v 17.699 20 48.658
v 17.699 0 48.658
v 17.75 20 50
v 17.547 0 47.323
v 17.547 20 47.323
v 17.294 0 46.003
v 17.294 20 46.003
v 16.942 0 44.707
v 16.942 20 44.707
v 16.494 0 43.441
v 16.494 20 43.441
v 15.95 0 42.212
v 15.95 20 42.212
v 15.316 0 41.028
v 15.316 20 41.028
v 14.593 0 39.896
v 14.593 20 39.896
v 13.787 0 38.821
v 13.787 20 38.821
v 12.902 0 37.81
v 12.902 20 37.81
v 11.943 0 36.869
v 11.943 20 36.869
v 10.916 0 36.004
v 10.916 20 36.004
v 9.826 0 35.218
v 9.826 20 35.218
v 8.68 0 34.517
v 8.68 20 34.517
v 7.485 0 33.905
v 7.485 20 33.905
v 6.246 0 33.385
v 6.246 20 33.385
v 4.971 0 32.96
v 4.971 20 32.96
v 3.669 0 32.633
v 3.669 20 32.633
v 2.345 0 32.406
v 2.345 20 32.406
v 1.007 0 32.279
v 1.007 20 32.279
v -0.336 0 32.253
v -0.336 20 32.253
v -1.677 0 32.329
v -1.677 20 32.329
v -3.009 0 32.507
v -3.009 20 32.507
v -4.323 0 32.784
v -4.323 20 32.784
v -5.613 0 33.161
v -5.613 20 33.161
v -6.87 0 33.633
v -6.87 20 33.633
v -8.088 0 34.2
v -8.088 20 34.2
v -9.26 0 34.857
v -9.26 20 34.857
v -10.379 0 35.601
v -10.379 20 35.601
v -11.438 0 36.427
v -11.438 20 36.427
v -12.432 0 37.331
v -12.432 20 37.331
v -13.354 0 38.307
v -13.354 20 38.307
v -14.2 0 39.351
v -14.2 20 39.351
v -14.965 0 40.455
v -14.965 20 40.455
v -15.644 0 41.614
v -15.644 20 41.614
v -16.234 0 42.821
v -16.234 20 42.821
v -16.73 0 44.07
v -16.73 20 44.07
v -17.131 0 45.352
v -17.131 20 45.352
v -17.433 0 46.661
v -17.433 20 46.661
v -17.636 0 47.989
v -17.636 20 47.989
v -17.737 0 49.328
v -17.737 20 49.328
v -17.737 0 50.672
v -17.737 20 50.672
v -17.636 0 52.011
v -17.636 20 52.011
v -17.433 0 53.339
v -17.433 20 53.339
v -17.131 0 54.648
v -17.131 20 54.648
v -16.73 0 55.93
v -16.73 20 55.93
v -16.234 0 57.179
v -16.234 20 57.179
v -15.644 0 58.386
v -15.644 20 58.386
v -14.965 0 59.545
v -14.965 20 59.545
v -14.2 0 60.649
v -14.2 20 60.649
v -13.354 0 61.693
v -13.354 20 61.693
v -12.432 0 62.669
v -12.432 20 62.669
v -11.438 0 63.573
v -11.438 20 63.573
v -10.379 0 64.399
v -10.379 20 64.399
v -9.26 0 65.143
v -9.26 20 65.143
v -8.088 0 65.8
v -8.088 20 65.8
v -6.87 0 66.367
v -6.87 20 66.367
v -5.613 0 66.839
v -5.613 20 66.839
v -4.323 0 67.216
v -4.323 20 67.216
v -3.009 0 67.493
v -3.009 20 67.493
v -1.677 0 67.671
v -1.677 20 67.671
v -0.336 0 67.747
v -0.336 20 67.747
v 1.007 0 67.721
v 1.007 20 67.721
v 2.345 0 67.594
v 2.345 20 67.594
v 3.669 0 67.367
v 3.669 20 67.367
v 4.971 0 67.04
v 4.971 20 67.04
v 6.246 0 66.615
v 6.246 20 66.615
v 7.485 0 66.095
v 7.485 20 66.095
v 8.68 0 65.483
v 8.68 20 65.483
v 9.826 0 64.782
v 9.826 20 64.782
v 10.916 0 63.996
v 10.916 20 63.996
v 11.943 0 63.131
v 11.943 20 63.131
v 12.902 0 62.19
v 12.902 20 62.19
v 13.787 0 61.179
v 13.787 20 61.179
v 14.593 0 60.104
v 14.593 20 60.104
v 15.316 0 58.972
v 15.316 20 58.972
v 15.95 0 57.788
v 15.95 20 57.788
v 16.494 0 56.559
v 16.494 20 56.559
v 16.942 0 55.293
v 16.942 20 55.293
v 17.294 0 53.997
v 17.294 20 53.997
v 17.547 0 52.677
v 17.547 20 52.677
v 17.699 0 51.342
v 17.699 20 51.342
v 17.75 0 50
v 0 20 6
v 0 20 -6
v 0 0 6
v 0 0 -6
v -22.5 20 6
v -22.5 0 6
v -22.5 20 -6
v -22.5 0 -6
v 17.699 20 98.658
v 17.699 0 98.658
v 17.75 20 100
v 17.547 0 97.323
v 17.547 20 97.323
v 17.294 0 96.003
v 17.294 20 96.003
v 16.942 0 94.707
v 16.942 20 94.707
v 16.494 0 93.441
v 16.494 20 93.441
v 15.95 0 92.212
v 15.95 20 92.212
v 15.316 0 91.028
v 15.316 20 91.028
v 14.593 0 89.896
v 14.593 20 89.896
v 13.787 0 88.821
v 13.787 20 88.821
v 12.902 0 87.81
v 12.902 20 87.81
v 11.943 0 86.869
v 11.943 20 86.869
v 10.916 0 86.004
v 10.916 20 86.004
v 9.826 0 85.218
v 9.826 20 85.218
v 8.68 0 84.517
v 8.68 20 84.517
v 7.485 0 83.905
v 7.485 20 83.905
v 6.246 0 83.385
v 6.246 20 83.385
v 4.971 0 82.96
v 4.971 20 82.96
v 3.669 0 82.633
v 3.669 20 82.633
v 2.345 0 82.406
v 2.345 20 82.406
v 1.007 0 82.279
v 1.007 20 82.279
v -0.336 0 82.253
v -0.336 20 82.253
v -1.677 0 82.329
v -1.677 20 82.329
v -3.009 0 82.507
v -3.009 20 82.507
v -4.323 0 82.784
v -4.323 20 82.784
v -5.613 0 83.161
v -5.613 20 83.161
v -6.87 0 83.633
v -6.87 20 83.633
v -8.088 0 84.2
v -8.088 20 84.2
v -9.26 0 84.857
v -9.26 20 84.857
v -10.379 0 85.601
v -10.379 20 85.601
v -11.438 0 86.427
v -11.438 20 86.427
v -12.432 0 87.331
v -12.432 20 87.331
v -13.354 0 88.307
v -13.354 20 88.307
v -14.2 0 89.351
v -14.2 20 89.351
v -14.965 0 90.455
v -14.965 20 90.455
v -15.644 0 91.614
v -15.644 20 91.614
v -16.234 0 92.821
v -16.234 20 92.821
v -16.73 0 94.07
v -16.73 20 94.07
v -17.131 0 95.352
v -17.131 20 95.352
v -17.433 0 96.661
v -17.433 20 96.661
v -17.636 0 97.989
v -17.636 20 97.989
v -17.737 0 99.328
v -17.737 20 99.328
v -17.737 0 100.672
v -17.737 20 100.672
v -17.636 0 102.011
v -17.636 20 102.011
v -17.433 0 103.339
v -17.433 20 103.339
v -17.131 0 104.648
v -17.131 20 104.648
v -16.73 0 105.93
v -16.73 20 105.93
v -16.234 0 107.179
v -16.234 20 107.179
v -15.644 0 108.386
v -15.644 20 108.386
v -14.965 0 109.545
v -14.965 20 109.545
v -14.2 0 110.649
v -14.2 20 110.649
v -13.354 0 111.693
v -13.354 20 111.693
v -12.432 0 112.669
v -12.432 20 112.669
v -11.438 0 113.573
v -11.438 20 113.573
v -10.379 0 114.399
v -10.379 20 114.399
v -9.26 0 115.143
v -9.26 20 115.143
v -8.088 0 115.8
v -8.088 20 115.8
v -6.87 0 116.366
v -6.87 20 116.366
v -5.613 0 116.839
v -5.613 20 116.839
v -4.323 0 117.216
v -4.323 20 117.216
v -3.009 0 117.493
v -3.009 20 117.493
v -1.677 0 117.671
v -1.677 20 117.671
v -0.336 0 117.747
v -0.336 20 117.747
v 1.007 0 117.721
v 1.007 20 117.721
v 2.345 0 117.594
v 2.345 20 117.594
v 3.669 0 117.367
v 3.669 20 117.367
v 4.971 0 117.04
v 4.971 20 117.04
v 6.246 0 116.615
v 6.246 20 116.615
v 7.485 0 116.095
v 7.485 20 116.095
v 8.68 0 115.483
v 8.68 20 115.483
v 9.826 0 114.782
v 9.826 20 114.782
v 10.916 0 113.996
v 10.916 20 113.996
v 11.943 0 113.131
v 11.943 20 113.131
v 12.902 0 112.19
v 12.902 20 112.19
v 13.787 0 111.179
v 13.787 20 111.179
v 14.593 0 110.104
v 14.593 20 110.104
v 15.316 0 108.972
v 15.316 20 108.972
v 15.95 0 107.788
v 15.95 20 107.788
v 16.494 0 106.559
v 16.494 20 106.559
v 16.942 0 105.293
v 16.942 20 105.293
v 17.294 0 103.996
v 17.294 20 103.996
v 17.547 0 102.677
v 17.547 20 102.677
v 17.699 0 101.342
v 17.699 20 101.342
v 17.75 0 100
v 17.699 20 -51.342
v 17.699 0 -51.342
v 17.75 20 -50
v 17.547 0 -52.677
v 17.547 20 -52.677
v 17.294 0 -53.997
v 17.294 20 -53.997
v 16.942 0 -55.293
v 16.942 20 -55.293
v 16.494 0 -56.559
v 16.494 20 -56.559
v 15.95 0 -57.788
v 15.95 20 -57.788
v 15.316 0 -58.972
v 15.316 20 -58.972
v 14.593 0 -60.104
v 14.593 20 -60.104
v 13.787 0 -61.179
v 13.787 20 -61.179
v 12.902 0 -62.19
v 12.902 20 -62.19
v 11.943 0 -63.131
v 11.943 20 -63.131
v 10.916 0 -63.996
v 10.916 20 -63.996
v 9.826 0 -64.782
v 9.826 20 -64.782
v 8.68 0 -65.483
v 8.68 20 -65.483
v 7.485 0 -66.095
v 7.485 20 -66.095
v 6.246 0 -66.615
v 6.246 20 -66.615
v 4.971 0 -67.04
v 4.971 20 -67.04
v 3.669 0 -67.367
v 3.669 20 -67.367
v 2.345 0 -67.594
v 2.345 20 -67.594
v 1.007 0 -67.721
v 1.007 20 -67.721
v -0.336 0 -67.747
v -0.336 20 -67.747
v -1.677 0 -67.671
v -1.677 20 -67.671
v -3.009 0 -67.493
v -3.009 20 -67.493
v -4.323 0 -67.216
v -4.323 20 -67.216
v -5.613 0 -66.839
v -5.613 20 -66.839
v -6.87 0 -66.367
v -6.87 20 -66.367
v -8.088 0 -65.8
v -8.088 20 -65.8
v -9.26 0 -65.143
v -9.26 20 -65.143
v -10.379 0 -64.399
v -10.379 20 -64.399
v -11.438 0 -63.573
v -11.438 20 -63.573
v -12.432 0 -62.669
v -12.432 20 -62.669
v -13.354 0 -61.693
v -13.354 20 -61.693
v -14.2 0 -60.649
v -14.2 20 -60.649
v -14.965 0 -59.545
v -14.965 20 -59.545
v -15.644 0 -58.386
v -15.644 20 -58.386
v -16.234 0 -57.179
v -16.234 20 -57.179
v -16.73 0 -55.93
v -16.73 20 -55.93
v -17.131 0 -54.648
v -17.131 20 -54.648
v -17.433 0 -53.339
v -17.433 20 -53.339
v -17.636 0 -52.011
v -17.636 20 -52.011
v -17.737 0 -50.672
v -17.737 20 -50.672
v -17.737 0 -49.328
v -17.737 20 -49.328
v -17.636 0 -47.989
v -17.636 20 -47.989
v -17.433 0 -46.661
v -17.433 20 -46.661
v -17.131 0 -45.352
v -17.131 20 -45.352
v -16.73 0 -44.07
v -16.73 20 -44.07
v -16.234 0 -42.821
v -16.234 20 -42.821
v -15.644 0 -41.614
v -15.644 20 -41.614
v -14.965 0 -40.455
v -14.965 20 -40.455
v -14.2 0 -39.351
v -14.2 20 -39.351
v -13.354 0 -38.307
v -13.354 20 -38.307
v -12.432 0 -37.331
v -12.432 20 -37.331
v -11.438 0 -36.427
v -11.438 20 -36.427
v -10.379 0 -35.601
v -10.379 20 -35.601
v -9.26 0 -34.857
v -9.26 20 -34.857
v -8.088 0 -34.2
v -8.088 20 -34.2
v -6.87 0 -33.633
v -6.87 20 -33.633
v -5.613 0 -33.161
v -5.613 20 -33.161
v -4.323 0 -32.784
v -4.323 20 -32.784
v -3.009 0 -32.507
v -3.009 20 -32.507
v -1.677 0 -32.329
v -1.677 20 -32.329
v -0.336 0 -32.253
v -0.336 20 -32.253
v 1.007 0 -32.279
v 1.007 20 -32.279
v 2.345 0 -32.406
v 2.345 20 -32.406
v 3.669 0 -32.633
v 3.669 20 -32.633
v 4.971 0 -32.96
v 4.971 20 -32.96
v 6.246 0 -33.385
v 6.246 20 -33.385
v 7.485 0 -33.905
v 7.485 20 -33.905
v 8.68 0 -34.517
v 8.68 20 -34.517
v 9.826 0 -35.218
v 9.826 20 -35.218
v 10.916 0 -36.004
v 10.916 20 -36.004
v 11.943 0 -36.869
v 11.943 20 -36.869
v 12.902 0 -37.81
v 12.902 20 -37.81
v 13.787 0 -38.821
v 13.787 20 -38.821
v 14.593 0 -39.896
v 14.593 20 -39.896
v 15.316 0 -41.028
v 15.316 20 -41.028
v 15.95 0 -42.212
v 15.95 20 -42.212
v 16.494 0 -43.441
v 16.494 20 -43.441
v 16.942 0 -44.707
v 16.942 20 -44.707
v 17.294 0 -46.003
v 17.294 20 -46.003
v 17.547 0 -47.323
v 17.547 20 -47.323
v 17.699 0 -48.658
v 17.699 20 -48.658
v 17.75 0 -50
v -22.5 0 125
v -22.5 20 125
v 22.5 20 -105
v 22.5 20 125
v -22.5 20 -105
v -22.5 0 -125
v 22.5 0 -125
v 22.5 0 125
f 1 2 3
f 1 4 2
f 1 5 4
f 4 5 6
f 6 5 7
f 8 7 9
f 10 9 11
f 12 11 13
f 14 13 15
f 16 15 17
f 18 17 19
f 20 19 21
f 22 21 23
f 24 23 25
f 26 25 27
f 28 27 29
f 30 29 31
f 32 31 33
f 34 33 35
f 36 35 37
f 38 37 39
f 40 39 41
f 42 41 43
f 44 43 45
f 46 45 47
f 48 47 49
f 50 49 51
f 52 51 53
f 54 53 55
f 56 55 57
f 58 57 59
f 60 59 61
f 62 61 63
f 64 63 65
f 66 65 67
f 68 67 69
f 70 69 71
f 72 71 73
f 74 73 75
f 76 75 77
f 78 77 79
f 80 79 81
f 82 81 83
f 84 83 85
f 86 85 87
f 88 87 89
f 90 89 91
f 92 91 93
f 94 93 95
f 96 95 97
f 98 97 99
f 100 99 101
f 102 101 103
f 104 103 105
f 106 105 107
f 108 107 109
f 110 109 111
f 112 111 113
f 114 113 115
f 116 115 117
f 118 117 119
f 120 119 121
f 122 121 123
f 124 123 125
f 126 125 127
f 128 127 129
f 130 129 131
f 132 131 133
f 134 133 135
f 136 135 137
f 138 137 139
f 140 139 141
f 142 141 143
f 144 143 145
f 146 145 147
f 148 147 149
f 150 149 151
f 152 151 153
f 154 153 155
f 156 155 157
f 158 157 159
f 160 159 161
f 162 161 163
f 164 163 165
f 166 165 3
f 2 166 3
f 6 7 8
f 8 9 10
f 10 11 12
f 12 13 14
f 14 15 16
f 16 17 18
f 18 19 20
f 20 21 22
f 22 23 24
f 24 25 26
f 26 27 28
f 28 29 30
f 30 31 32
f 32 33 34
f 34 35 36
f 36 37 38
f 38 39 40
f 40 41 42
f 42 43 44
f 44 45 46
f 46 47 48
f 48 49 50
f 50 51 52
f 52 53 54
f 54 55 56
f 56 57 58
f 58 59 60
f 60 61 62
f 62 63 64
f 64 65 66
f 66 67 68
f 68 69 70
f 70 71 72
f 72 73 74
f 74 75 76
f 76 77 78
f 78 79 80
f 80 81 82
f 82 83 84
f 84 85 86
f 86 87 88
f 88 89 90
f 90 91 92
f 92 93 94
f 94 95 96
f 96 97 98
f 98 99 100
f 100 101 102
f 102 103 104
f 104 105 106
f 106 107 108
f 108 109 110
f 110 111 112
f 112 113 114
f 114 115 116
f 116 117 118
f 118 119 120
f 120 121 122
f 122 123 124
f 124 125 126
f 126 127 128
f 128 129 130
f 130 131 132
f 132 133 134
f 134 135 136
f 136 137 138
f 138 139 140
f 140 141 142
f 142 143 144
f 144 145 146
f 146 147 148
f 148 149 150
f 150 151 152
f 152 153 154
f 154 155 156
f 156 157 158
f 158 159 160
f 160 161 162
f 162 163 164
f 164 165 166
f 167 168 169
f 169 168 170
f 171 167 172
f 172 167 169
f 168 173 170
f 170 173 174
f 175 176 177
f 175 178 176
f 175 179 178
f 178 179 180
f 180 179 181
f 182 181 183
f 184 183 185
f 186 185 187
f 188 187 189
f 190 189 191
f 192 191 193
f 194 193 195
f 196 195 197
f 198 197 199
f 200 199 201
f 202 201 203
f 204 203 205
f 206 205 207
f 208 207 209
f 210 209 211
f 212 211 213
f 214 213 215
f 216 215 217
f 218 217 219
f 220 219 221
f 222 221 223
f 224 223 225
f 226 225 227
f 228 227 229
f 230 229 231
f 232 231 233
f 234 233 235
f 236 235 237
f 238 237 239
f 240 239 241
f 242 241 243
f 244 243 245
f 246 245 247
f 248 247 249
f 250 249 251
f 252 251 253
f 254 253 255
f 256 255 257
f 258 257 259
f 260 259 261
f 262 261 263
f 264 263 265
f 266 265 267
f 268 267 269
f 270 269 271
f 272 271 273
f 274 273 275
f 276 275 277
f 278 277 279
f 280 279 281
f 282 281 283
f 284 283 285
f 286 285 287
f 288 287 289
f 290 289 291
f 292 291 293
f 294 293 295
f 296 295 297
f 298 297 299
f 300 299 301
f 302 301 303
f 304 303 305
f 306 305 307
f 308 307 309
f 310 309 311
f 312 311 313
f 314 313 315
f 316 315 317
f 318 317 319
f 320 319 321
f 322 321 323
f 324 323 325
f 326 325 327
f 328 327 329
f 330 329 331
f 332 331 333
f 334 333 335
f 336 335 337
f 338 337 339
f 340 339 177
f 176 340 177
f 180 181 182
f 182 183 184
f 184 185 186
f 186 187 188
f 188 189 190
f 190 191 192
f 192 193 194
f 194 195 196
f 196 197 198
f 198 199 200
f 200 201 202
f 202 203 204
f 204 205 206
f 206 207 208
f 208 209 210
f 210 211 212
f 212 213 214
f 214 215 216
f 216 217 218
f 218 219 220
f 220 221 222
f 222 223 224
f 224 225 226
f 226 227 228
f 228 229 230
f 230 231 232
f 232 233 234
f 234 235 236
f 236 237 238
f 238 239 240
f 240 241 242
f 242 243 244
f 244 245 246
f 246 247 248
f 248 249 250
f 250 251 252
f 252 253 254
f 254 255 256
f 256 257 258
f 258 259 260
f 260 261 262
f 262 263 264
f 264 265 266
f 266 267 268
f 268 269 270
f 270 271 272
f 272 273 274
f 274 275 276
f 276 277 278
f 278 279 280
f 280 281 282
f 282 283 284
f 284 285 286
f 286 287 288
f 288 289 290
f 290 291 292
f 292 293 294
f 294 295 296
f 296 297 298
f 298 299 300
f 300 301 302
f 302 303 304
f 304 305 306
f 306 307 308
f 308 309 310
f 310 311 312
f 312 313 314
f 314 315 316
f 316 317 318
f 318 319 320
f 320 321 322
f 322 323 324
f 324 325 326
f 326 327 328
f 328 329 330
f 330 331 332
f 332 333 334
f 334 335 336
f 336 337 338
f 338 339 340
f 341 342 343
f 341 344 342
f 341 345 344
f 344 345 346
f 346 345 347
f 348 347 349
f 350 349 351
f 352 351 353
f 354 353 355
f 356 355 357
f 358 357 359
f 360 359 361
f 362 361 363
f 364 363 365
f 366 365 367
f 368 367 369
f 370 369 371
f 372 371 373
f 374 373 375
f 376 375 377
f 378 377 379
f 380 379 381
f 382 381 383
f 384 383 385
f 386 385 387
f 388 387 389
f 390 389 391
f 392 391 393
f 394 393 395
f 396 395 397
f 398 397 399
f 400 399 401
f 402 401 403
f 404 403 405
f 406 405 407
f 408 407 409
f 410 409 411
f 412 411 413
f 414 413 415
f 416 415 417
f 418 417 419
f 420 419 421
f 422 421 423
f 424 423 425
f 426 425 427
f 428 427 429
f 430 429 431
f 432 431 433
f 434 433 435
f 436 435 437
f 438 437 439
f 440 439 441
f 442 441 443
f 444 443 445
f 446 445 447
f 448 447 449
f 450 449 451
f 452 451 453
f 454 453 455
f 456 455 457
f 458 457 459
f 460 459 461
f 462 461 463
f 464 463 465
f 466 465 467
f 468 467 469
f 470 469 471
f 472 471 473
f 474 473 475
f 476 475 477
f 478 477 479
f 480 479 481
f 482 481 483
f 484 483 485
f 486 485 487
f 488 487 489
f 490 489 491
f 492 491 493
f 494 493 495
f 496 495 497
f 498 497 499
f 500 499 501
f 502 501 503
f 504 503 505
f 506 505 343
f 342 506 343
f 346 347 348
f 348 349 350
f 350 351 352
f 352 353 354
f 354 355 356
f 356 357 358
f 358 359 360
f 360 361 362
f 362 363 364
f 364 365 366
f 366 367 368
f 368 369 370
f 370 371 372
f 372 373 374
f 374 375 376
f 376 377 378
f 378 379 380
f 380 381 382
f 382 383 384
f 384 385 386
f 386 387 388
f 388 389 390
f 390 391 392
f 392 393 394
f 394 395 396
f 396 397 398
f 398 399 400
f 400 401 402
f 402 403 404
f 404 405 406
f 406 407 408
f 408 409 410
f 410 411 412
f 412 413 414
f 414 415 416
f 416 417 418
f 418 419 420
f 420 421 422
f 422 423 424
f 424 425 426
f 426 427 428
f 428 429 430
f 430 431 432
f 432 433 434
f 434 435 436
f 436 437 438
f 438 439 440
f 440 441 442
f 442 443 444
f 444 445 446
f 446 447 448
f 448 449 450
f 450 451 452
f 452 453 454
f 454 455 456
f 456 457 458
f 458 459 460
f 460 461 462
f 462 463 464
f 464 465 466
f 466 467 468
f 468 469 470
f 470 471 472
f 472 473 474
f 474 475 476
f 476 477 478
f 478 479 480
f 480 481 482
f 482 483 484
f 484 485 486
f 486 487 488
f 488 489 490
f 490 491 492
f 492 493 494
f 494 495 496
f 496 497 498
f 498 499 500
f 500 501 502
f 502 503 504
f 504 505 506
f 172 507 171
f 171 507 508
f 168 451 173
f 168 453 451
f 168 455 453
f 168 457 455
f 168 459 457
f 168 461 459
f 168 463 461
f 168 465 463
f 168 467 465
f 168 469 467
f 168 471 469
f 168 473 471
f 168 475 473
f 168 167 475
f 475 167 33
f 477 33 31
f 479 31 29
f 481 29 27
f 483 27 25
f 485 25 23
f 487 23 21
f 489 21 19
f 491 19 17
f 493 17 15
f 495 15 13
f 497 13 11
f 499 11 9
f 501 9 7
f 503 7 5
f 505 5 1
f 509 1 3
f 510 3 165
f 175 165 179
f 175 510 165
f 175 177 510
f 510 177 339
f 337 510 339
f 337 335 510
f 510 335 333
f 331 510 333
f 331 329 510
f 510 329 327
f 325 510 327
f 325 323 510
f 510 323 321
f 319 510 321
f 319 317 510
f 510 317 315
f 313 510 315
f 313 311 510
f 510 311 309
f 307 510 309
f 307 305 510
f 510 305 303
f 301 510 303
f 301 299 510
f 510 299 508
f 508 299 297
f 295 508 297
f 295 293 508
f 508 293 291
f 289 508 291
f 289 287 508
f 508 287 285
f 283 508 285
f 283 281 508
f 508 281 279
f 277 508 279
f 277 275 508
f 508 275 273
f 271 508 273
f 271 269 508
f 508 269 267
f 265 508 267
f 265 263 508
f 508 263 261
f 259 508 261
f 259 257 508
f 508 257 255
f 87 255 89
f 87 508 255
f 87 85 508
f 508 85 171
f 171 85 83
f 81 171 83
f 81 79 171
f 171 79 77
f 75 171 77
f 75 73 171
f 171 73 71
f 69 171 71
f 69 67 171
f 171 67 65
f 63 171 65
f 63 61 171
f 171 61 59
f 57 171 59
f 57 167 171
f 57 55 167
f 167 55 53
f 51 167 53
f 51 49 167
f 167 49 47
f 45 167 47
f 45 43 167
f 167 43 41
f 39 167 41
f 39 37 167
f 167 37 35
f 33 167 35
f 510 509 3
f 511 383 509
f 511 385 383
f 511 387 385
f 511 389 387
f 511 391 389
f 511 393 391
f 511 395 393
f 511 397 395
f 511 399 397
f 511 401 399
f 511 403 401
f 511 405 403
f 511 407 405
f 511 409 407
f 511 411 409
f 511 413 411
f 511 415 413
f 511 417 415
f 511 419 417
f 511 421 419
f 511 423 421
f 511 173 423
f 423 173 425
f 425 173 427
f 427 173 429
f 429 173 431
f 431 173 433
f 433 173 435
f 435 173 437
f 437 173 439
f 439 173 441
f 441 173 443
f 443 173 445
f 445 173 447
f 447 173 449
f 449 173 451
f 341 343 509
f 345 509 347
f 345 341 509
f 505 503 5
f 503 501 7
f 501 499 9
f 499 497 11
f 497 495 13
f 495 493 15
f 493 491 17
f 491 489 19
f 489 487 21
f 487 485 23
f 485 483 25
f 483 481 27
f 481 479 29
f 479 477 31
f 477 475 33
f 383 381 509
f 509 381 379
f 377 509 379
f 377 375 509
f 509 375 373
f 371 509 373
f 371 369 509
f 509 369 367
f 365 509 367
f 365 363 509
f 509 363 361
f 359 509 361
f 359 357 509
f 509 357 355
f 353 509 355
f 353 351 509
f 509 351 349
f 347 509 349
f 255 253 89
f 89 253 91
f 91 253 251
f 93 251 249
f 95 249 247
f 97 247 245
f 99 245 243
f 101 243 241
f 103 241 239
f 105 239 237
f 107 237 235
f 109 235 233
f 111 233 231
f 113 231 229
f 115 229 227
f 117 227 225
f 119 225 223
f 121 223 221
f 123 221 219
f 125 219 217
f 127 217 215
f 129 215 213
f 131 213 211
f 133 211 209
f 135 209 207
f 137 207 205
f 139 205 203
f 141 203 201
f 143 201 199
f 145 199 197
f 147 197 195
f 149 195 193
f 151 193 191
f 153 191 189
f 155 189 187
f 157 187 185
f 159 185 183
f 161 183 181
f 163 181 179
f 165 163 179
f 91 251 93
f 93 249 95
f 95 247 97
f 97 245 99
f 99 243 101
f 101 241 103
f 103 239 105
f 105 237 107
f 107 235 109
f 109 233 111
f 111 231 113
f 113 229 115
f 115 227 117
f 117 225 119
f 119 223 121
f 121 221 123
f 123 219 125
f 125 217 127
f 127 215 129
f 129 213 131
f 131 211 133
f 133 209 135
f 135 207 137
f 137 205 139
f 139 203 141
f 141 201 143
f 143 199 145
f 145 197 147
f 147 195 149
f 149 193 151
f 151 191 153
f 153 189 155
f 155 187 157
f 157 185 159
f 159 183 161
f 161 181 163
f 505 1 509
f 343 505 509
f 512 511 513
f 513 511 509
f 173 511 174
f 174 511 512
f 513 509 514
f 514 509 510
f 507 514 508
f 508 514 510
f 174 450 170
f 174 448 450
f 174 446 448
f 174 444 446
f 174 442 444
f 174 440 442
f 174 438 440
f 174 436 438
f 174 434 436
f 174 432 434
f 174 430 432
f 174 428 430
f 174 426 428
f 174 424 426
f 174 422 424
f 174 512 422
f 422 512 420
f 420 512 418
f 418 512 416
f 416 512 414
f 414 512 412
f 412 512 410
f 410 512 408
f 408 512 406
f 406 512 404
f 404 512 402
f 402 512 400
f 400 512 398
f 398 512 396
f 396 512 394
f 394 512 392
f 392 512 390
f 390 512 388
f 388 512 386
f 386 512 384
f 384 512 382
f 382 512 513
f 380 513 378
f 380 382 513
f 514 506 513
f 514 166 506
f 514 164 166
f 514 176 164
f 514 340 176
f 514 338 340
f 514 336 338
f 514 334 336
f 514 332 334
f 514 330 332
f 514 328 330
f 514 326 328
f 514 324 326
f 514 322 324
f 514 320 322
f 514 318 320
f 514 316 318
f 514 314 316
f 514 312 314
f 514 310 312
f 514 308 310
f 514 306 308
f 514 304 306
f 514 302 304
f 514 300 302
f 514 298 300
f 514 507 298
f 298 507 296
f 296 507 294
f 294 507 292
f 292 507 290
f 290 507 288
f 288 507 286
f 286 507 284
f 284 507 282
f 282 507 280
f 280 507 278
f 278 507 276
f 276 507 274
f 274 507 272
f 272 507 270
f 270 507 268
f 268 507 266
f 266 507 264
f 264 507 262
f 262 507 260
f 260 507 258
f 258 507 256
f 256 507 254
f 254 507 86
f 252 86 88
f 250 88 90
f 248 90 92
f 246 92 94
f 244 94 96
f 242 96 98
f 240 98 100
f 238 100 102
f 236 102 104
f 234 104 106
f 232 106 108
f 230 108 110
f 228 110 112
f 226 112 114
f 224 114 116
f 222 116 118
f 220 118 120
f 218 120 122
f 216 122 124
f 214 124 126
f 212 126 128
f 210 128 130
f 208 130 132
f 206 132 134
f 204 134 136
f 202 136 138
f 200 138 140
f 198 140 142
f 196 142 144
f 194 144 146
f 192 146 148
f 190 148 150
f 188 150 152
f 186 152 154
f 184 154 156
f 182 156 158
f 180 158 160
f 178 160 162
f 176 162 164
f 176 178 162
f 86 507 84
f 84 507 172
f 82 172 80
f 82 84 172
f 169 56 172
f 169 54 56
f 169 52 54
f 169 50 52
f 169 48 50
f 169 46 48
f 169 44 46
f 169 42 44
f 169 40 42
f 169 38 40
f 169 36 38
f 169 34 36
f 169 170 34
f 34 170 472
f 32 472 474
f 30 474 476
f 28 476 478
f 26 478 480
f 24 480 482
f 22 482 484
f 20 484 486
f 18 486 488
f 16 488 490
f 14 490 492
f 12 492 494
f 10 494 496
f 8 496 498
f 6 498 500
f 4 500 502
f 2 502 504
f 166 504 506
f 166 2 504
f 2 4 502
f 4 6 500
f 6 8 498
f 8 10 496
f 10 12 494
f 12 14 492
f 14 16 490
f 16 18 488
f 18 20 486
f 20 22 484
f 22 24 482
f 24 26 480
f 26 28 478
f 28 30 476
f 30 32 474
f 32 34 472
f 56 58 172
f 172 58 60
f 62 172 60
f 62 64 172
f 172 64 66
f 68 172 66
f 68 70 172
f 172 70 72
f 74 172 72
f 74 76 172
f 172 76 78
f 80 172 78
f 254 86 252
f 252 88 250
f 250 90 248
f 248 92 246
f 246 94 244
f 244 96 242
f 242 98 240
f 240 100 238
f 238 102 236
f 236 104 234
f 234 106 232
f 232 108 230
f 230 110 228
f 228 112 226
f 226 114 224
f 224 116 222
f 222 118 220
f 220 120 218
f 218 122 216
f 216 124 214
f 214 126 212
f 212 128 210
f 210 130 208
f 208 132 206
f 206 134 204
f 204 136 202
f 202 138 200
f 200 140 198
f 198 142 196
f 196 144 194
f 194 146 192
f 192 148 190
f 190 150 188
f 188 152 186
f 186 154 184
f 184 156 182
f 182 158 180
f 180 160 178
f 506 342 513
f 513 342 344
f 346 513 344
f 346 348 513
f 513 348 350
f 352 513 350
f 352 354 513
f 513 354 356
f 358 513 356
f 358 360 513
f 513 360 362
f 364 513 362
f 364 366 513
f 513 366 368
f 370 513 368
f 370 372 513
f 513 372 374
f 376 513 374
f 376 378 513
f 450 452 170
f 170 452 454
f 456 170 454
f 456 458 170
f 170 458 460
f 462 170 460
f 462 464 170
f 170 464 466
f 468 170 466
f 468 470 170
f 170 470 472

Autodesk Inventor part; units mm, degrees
ref_plane "YZ Plane" through (0, 0, 0) normal (1, 0, 0) x (0, 1, 0)
ref_plane "XZ Plane" through (0, 0, 0) normal (0, 1, 0) x (-1, 0, 0)
ref_plane "XY Plane" through (0, 0, 0) normal (0, 0, 1) x (1, 0, 0)
sketch "Sketch1" plane through (0, 0, 0) normal (0, 1, 0) x (-1, 0, 0)
  line L0 (22.5, 125) -> (-22.5, 125)
  line L1 (-22.5, 125) -> (-22.5, -125)
  line L2 (-22.5, -125) -> (22.5, -125)
  line L3 (22.5, -125) -> (22.5, 125)
  line L4 (22.5, 125) -> (-22.5, -125) construction
  line L5 (-22.5, 125) -> (22.5, -125) construction
  point P0 (0, 0)
  dimension "d0" = 250
  dimension "d1" = 45
extrude "Extrusion1" add sketch "Sketch1" along normal blind 20
sketch "Sketch2" plane through (0, 0, 0) normal (0, -1, 0) x (1, 0, 0)
  circle A0 centre (0, 100) radius 17.75
  circle A1 centre (0, 50) radius 17.75
  circle A2 centre (0, -50) radius 17.75
  line L0 (0, 50) -> (0, -50) construction
  line L1 (0, 100) -> (0, 50) construction
  line L2 (0, 0) -> (0, 148) construction
  line L3 (-35.7491, 0) -> (26.8031, 0) construction
  line L4 (0, -6) -> (-22.5, -6)
  line L5 (-22.5, -6) -> (-22.5, 6)
  line L6 (-22.5, 6) -> (0, 6)
  line L7 (0, 6) -> (0, -6)
  line L8 (0, -6) -> (-22.5, 6) construction
  line L9 (-22.5, -6) -> (0, 6) construction
  line L10 (-18, 98) -> (-18, -100) projected
  line L11 (-22.5, 125) -> (22.5, 125) projected
  line L12 (-22.5, -125) -> (-22.5, 125) projected
  point P0 (0, 75)
  point P1 (-11.5, 0)
  point P2 (-11.25, 0)
  point P3 (-25, -148)
  point P4 (-16, 100)
  dimension "d9" = 35.5
  dimension "d10" = 35.5
  dimension "d11" = 35.5
  dimension "d12" = 50
  dimension "d13" = 100
  dimension "d16" = 12
  dimension "d36" = 25
sketch "Sketch4" plane through (22.5, 0, 125) normal (1, 0, 0) x (0, 0, -1)
  line L0 (250, 0) -> (230, 20)
  line L1 (0, 20) -> (250, 20) projected
  line L2 (250, 0) -> (250, 20)
  point P0 (125, 0)
  dimension "d29" = 45
extrude "Extrusion4" cut sketch "Sketch4" against normal through all
extrude "Extrusion5" cut sketch "Sketch2" against normal through all
equation "\"d9\" = d11"
equation "\"d10\" = d11"
equation "\"d13\" = 2 * d12"
properties part number "stand1" material "Wood (Walnut)"
